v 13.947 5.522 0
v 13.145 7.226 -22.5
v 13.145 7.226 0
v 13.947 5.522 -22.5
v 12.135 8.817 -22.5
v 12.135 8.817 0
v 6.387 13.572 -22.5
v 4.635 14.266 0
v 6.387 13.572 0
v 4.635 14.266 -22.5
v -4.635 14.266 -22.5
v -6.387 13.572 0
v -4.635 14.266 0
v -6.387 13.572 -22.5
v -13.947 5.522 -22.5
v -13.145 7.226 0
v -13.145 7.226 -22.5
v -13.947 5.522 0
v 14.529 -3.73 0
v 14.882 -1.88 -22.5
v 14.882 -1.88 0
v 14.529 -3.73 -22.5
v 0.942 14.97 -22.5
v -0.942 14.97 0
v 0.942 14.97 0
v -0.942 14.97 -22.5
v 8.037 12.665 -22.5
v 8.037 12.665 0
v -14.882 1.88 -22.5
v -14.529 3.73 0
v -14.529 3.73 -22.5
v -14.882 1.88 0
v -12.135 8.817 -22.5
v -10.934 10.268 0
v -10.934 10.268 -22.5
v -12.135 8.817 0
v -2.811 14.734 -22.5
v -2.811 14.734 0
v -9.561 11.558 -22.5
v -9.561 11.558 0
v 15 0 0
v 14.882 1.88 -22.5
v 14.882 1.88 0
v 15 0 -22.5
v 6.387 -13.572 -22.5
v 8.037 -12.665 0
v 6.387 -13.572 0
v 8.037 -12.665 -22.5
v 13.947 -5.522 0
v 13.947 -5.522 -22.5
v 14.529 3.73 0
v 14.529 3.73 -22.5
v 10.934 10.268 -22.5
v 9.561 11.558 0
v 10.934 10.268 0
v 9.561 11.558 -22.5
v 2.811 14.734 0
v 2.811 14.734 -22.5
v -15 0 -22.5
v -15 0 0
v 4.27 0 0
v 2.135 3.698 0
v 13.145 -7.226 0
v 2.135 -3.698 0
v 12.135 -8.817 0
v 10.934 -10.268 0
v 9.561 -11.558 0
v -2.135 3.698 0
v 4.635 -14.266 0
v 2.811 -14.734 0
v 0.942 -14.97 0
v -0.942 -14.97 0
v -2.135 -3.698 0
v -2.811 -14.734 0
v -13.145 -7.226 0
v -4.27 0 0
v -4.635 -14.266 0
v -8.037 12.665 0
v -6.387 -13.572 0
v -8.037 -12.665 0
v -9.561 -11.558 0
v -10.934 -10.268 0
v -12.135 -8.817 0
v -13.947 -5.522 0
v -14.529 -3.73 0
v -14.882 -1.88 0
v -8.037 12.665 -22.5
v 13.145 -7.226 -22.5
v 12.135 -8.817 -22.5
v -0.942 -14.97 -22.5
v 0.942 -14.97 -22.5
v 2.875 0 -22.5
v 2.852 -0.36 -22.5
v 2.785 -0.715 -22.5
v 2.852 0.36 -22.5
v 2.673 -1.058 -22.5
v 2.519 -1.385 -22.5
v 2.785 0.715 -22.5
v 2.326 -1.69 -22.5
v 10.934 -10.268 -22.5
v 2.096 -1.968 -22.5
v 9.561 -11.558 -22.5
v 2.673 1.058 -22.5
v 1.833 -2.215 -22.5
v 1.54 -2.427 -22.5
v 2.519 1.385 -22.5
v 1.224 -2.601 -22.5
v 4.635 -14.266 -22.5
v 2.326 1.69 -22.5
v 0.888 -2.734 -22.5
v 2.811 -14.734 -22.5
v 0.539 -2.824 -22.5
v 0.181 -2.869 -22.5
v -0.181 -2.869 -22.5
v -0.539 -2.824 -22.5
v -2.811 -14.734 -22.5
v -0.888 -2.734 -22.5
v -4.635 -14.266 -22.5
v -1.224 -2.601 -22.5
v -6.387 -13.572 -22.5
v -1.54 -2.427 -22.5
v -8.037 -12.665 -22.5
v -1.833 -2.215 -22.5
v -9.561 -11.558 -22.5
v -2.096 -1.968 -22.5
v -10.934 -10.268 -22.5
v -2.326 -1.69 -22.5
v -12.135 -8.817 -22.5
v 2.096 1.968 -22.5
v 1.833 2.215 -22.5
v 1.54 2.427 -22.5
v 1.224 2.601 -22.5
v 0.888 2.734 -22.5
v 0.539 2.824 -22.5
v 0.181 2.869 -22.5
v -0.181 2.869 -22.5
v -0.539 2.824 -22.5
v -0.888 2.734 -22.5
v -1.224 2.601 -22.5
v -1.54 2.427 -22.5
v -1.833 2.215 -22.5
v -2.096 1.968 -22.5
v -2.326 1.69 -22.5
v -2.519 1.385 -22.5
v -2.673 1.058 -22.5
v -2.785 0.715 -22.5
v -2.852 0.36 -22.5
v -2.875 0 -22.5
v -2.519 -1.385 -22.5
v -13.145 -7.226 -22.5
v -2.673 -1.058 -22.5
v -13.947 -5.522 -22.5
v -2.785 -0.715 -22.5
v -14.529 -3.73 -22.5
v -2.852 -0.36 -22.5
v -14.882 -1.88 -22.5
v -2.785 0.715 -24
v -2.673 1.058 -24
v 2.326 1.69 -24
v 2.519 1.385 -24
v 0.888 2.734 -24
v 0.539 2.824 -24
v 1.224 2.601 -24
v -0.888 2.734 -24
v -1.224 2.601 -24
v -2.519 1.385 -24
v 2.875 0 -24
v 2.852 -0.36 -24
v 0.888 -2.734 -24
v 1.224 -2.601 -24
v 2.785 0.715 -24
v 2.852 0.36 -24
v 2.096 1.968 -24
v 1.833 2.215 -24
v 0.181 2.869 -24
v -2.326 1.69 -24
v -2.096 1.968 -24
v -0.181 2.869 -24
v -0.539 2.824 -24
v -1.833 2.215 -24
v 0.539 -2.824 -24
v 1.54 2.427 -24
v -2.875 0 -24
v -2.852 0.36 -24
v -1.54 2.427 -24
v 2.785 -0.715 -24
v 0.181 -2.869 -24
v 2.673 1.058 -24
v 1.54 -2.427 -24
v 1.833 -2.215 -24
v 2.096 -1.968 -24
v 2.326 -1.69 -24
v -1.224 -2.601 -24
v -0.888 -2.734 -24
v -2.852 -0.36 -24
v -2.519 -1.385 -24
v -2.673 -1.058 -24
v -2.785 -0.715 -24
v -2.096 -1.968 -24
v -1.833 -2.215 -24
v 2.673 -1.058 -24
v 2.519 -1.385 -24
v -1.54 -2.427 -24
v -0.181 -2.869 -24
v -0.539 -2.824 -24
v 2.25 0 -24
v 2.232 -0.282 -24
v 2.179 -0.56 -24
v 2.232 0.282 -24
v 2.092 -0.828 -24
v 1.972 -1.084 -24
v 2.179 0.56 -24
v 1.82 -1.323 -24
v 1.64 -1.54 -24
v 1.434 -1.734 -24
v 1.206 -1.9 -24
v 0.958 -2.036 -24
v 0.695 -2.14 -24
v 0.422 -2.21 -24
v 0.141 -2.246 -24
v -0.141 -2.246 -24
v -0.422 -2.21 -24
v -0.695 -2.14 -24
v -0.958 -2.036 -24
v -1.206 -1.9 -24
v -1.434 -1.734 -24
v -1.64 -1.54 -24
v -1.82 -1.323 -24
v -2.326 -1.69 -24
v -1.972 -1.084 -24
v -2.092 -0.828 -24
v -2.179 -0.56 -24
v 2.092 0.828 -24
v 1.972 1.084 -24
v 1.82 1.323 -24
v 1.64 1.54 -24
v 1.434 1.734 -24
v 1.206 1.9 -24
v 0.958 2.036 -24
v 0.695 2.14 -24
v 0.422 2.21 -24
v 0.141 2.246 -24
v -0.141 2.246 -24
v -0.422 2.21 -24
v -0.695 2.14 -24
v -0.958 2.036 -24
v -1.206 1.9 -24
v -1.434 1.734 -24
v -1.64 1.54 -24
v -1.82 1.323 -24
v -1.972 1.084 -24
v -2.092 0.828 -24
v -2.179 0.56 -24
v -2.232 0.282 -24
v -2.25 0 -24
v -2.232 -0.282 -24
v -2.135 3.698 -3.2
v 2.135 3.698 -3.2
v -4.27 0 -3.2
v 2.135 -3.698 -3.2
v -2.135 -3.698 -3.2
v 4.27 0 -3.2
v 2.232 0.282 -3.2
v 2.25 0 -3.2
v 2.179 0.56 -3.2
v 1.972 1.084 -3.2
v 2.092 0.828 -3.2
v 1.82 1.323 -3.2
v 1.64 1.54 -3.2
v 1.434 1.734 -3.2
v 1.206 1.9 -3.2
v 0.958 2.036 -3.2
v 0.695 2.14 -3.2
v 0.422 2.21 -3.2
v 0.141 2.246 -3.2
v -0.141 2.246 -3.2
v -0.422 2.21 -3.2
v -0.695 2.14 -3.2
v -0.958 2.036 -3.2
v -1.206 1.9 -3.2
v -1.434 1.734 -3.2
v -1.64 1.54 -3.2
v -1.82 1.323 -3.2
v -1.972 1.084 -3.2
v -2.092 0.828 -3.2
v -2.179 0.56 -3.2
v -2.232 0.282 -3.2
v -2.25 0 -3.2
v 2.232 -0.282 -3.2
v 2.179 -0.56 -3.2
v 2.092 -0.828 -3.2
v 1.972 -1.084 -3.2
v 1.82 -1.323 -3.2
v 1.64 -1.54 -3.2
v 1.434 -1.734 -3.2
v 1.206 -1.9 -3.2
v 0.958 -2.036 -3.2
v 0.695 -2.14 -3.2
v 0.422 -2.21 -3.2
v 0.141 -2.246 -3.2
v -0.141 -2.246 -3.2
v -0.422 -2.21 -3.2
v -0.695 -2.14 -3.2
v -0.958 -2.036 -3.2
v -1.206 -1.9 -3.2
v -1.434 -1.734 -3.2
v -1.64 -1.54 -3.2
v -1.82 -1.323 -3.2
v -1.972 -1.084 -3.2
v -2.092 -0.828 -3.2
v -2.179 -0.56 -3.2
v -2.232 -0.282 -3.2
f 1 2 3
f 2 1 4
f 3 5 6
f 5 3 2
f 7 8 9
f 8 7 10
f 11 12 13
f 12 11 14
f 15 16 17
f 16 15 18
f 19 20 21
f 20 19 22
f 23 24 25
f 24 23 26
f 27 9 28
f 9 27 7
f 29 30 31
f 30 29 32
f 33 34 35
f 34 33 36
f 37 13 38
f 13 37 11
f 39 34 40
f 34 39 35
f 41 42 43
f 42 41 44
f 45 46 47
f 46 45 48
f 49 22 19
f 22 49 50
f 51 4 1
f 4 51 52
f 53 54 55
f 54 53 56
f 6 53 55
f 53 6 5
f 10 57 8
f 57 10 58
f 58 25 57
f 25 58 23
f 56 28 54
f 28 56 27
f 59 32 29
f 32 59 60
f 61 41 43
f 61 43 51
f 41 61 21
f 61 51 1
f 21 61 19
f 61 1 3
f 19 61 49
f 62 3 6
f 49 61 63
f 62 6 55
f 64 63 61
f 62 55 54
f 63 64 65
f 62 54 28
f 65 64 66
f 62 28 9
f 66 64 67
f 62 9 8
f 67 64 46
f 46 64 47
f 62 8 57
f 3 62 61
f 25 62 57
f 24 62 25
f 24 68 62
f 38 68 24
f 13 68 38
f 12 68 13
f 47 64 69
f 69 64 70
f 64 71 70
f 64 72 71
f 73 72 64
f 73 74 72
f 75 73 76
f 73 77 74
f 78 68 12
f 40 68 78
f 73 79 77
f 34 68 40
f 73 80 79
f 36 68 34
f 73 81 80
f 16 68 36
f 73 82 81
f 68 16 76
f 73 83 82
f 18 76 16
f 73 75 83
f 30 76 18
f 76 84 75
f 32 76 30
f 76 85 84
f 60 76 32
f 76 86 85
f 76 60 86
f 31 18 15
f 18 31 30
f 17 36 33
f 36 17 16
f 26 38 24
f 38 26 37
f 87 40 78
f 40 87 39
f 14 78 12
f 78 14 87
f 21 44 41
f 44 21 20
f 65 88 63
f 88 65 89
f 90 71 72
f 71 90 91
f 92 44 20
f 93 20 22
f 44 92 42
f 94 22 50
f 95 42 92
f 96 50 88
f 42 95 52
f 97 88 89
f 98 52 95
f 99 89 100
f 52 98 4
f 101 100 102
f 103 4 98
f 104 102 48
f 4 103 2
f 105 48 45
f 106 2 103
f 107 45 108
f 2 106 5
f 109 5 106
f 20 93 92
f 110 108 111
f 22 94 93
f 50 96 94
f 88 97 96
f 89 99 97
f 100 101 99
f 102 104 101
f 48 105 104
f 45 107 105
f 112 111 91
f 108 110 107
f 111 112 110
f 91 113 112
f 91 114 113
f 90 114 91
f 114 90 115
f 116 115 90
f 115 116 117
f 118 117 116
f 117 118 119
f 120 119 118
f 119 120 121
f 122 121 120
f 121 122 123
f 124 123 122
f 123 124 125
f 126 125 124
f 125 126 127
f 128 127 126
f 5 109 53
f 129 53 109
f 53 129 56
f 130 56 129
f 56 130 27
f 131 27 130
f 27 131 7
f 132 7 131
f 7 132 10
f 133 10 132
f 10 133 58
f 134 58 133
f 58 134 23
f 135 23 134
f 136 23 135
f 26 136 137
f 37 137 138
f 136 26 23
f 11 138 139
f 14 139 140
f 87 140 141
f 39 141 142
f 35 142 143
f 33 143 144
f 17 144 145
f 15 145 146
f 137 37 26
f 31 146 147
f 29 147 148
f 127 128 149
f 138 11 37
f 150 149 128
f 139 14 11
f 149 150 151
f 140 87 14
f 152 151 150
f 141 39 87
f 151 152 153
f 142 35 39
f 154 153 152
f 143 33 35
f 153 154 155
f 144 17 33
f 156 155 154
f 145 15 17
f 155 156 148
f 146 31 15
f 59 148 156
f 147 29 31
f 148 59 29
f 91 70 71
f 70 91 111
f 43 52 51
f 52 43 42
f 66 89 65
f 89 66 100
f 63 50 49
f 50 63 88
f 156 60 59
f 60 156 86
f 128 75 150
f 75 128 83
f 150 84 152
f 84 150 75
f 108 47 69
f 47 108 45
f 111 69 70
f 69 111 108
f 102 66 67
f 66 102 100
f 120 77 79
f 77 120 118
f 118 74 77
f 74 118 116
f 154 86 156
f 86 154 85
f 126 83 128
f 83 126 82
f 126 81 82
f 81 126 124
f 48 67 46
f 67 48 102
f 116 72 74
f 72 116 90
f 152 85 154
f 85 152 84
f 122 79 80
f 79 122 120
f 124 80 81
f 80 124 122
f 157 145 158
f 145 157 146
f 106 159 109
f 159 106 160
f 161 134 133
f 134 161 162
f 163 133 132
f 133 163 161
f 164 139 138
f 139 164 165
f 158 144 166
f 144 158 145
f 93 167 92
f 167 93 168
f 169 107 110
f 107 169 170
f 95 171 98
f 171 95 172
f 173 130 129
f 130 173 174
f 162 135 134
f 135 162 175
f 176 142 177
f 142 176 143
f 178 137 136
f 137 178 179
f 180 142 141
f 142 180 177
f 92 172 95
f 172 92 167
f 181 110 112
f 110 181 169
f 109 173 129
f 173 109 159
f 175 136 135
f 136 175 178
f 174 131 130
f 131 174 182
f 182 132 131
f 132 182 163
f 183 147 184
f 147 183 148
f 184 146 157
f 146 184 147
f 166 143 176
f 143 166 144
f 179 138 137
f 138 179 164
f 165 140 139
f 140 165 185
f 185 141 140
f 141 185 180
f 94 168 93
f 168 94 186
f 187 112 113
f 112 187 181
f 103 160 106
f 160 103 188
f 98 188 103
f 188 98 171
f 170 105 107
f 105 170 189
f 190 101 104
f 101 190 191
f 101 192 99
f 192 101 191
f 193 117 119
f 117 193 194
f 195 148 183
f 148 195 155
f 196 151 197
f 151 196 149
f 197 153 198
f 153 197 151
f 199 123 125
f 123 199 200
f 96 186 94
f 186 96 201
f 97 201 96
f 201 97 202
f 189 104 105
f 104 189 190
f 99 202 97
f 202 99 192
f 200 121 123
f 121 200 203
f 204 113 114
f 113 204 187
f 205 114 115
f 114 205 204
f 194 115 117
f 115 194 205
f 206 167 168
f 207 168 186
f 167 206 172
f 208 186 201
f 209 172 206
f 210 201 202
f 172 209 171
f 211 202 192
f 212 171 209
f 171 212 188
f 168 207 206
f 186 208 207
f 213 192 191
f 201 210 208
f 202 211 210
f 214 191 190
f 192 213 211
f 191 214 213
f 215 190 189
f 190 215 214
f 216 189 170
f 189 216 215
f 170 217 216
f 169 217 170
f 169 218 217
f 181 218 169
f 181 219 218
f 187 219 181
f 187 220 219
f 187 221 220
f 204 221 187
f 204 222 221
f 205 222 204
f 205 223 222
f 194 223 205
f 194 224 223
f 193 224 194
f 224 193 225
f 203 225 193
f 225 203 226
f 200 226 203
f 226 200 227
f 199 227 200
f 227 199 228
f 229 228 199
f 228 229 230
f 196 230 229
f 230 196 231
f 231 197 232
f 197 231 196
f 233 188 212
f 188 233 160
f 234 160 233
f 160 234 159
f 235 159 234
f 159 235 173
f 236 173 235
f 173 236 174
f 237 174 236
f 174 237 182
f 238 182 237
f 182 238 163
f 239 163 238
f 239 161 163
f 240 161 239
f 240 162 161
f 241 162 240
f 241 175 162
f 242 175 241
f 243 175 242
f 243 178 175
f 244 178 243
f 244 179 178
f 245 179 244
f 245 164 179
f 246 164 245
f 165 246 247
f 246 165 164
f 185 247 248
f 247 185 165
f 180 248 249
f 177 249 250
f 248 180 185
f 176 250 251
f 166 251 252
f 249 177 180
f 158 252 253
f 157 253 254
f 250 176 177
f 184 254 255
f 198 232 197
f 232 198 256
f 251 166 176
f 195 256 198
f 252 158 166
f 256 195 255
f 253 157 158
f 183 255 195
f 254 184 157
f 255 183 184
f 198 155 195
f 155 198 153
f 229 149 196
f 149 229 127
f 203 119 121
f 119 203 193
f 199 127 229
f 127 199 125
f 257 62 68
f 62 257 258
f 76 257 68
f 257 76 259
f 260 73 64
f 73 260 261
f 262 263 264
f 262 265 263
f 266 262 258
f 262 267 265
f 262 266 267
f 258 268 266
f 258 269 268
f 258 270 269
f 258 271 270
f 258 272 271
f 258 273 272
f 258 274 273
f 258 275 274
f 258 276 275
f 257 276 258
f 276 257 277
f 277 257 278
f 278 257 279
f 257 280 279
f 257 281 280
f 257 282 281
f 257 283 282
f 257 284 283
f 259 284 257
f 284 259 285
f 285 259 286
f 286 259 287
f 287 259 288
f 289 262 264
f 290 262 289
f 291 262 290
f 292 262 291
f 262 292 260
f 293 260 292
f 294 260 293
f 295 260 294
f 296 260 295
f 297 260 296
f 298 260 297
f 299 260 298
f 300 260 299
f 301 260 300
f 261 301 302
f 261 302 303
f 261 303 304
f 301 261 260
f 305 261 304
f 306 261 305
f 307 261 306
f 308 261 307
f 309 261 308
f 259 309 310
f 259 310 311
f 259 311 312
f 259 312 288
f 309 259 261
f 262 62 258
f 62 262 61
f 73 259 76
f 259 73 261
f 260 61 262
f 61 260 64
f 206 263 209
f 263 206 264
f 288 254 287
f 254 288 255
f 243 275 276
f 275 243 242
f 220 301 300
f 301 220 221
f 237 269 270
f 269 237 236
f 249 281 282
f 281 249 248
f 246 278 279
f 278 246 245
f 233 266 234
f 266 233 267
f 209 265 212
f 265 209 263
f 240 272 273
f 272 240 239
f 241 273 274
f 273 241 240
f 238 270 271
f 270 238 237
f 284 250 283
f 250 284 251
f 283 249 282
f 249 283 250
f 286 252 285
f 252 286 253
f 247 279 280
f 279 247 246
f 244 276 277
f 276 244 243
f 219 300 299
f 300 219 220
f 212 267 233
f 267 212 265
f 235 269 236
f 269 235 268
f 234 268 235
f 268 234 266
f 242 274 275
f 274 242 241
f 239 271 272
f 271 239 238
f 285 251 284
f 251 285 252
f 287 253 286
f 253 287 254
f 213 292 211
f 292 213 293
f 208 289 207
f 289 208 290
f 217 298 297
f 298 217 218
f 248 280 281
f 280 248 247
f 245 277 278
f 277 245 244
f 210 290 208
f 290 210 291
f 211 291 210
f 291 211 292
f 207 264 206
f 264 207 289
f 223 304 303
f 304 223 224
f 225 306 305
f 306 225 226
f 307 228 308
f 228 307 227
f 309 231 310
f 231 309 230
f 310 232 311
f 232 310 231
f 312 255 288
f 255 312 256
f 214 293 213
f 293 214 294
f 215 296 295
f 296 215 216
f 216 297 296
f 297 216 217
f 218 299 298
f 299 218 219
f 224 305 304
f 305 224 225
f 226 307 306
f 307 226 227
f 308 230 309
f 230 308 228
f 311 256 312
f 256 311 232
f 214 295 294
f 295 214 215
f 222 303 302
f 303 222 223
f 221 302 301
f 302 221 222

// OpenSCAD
$fn = 50;


difference() {
	union() {
		translate(v = [0, 0, -22.5000000000]) {
			cylinder(h = 22.5000000000, r = 15.0000000000);
		}
		#translate(v = [0, 0, -24.0000000000]) {
			cylinder(h = 24, r = 2.8750000000);
		}
	}
	union() {
		translate(v = [0, 0, 0]) {
			rotate(a = [0, 0, 0]) {
				difference() {
					union() {
						translate(v = [0, 0, -3.2000000000]) {
							linear_extrude(height = 3.2000000000) {
								polygon(points = [[4.2698000000, 0.0000000000], [2.1349000000, 3.6977552691], [-2.1349000000, 3.6977552691], [-4.2698000000, 0.0000000000], [-2.1349000000, -3.6977552691], [2.1349000000, -3.6977552691]]);
							}
						}
					}
					union();
				}
			}
		}
		#translate(v = [0, 0, -100.0000000000]) {
			cylinder(h = 200, r = 2.2500000000);
		}
	}
}
